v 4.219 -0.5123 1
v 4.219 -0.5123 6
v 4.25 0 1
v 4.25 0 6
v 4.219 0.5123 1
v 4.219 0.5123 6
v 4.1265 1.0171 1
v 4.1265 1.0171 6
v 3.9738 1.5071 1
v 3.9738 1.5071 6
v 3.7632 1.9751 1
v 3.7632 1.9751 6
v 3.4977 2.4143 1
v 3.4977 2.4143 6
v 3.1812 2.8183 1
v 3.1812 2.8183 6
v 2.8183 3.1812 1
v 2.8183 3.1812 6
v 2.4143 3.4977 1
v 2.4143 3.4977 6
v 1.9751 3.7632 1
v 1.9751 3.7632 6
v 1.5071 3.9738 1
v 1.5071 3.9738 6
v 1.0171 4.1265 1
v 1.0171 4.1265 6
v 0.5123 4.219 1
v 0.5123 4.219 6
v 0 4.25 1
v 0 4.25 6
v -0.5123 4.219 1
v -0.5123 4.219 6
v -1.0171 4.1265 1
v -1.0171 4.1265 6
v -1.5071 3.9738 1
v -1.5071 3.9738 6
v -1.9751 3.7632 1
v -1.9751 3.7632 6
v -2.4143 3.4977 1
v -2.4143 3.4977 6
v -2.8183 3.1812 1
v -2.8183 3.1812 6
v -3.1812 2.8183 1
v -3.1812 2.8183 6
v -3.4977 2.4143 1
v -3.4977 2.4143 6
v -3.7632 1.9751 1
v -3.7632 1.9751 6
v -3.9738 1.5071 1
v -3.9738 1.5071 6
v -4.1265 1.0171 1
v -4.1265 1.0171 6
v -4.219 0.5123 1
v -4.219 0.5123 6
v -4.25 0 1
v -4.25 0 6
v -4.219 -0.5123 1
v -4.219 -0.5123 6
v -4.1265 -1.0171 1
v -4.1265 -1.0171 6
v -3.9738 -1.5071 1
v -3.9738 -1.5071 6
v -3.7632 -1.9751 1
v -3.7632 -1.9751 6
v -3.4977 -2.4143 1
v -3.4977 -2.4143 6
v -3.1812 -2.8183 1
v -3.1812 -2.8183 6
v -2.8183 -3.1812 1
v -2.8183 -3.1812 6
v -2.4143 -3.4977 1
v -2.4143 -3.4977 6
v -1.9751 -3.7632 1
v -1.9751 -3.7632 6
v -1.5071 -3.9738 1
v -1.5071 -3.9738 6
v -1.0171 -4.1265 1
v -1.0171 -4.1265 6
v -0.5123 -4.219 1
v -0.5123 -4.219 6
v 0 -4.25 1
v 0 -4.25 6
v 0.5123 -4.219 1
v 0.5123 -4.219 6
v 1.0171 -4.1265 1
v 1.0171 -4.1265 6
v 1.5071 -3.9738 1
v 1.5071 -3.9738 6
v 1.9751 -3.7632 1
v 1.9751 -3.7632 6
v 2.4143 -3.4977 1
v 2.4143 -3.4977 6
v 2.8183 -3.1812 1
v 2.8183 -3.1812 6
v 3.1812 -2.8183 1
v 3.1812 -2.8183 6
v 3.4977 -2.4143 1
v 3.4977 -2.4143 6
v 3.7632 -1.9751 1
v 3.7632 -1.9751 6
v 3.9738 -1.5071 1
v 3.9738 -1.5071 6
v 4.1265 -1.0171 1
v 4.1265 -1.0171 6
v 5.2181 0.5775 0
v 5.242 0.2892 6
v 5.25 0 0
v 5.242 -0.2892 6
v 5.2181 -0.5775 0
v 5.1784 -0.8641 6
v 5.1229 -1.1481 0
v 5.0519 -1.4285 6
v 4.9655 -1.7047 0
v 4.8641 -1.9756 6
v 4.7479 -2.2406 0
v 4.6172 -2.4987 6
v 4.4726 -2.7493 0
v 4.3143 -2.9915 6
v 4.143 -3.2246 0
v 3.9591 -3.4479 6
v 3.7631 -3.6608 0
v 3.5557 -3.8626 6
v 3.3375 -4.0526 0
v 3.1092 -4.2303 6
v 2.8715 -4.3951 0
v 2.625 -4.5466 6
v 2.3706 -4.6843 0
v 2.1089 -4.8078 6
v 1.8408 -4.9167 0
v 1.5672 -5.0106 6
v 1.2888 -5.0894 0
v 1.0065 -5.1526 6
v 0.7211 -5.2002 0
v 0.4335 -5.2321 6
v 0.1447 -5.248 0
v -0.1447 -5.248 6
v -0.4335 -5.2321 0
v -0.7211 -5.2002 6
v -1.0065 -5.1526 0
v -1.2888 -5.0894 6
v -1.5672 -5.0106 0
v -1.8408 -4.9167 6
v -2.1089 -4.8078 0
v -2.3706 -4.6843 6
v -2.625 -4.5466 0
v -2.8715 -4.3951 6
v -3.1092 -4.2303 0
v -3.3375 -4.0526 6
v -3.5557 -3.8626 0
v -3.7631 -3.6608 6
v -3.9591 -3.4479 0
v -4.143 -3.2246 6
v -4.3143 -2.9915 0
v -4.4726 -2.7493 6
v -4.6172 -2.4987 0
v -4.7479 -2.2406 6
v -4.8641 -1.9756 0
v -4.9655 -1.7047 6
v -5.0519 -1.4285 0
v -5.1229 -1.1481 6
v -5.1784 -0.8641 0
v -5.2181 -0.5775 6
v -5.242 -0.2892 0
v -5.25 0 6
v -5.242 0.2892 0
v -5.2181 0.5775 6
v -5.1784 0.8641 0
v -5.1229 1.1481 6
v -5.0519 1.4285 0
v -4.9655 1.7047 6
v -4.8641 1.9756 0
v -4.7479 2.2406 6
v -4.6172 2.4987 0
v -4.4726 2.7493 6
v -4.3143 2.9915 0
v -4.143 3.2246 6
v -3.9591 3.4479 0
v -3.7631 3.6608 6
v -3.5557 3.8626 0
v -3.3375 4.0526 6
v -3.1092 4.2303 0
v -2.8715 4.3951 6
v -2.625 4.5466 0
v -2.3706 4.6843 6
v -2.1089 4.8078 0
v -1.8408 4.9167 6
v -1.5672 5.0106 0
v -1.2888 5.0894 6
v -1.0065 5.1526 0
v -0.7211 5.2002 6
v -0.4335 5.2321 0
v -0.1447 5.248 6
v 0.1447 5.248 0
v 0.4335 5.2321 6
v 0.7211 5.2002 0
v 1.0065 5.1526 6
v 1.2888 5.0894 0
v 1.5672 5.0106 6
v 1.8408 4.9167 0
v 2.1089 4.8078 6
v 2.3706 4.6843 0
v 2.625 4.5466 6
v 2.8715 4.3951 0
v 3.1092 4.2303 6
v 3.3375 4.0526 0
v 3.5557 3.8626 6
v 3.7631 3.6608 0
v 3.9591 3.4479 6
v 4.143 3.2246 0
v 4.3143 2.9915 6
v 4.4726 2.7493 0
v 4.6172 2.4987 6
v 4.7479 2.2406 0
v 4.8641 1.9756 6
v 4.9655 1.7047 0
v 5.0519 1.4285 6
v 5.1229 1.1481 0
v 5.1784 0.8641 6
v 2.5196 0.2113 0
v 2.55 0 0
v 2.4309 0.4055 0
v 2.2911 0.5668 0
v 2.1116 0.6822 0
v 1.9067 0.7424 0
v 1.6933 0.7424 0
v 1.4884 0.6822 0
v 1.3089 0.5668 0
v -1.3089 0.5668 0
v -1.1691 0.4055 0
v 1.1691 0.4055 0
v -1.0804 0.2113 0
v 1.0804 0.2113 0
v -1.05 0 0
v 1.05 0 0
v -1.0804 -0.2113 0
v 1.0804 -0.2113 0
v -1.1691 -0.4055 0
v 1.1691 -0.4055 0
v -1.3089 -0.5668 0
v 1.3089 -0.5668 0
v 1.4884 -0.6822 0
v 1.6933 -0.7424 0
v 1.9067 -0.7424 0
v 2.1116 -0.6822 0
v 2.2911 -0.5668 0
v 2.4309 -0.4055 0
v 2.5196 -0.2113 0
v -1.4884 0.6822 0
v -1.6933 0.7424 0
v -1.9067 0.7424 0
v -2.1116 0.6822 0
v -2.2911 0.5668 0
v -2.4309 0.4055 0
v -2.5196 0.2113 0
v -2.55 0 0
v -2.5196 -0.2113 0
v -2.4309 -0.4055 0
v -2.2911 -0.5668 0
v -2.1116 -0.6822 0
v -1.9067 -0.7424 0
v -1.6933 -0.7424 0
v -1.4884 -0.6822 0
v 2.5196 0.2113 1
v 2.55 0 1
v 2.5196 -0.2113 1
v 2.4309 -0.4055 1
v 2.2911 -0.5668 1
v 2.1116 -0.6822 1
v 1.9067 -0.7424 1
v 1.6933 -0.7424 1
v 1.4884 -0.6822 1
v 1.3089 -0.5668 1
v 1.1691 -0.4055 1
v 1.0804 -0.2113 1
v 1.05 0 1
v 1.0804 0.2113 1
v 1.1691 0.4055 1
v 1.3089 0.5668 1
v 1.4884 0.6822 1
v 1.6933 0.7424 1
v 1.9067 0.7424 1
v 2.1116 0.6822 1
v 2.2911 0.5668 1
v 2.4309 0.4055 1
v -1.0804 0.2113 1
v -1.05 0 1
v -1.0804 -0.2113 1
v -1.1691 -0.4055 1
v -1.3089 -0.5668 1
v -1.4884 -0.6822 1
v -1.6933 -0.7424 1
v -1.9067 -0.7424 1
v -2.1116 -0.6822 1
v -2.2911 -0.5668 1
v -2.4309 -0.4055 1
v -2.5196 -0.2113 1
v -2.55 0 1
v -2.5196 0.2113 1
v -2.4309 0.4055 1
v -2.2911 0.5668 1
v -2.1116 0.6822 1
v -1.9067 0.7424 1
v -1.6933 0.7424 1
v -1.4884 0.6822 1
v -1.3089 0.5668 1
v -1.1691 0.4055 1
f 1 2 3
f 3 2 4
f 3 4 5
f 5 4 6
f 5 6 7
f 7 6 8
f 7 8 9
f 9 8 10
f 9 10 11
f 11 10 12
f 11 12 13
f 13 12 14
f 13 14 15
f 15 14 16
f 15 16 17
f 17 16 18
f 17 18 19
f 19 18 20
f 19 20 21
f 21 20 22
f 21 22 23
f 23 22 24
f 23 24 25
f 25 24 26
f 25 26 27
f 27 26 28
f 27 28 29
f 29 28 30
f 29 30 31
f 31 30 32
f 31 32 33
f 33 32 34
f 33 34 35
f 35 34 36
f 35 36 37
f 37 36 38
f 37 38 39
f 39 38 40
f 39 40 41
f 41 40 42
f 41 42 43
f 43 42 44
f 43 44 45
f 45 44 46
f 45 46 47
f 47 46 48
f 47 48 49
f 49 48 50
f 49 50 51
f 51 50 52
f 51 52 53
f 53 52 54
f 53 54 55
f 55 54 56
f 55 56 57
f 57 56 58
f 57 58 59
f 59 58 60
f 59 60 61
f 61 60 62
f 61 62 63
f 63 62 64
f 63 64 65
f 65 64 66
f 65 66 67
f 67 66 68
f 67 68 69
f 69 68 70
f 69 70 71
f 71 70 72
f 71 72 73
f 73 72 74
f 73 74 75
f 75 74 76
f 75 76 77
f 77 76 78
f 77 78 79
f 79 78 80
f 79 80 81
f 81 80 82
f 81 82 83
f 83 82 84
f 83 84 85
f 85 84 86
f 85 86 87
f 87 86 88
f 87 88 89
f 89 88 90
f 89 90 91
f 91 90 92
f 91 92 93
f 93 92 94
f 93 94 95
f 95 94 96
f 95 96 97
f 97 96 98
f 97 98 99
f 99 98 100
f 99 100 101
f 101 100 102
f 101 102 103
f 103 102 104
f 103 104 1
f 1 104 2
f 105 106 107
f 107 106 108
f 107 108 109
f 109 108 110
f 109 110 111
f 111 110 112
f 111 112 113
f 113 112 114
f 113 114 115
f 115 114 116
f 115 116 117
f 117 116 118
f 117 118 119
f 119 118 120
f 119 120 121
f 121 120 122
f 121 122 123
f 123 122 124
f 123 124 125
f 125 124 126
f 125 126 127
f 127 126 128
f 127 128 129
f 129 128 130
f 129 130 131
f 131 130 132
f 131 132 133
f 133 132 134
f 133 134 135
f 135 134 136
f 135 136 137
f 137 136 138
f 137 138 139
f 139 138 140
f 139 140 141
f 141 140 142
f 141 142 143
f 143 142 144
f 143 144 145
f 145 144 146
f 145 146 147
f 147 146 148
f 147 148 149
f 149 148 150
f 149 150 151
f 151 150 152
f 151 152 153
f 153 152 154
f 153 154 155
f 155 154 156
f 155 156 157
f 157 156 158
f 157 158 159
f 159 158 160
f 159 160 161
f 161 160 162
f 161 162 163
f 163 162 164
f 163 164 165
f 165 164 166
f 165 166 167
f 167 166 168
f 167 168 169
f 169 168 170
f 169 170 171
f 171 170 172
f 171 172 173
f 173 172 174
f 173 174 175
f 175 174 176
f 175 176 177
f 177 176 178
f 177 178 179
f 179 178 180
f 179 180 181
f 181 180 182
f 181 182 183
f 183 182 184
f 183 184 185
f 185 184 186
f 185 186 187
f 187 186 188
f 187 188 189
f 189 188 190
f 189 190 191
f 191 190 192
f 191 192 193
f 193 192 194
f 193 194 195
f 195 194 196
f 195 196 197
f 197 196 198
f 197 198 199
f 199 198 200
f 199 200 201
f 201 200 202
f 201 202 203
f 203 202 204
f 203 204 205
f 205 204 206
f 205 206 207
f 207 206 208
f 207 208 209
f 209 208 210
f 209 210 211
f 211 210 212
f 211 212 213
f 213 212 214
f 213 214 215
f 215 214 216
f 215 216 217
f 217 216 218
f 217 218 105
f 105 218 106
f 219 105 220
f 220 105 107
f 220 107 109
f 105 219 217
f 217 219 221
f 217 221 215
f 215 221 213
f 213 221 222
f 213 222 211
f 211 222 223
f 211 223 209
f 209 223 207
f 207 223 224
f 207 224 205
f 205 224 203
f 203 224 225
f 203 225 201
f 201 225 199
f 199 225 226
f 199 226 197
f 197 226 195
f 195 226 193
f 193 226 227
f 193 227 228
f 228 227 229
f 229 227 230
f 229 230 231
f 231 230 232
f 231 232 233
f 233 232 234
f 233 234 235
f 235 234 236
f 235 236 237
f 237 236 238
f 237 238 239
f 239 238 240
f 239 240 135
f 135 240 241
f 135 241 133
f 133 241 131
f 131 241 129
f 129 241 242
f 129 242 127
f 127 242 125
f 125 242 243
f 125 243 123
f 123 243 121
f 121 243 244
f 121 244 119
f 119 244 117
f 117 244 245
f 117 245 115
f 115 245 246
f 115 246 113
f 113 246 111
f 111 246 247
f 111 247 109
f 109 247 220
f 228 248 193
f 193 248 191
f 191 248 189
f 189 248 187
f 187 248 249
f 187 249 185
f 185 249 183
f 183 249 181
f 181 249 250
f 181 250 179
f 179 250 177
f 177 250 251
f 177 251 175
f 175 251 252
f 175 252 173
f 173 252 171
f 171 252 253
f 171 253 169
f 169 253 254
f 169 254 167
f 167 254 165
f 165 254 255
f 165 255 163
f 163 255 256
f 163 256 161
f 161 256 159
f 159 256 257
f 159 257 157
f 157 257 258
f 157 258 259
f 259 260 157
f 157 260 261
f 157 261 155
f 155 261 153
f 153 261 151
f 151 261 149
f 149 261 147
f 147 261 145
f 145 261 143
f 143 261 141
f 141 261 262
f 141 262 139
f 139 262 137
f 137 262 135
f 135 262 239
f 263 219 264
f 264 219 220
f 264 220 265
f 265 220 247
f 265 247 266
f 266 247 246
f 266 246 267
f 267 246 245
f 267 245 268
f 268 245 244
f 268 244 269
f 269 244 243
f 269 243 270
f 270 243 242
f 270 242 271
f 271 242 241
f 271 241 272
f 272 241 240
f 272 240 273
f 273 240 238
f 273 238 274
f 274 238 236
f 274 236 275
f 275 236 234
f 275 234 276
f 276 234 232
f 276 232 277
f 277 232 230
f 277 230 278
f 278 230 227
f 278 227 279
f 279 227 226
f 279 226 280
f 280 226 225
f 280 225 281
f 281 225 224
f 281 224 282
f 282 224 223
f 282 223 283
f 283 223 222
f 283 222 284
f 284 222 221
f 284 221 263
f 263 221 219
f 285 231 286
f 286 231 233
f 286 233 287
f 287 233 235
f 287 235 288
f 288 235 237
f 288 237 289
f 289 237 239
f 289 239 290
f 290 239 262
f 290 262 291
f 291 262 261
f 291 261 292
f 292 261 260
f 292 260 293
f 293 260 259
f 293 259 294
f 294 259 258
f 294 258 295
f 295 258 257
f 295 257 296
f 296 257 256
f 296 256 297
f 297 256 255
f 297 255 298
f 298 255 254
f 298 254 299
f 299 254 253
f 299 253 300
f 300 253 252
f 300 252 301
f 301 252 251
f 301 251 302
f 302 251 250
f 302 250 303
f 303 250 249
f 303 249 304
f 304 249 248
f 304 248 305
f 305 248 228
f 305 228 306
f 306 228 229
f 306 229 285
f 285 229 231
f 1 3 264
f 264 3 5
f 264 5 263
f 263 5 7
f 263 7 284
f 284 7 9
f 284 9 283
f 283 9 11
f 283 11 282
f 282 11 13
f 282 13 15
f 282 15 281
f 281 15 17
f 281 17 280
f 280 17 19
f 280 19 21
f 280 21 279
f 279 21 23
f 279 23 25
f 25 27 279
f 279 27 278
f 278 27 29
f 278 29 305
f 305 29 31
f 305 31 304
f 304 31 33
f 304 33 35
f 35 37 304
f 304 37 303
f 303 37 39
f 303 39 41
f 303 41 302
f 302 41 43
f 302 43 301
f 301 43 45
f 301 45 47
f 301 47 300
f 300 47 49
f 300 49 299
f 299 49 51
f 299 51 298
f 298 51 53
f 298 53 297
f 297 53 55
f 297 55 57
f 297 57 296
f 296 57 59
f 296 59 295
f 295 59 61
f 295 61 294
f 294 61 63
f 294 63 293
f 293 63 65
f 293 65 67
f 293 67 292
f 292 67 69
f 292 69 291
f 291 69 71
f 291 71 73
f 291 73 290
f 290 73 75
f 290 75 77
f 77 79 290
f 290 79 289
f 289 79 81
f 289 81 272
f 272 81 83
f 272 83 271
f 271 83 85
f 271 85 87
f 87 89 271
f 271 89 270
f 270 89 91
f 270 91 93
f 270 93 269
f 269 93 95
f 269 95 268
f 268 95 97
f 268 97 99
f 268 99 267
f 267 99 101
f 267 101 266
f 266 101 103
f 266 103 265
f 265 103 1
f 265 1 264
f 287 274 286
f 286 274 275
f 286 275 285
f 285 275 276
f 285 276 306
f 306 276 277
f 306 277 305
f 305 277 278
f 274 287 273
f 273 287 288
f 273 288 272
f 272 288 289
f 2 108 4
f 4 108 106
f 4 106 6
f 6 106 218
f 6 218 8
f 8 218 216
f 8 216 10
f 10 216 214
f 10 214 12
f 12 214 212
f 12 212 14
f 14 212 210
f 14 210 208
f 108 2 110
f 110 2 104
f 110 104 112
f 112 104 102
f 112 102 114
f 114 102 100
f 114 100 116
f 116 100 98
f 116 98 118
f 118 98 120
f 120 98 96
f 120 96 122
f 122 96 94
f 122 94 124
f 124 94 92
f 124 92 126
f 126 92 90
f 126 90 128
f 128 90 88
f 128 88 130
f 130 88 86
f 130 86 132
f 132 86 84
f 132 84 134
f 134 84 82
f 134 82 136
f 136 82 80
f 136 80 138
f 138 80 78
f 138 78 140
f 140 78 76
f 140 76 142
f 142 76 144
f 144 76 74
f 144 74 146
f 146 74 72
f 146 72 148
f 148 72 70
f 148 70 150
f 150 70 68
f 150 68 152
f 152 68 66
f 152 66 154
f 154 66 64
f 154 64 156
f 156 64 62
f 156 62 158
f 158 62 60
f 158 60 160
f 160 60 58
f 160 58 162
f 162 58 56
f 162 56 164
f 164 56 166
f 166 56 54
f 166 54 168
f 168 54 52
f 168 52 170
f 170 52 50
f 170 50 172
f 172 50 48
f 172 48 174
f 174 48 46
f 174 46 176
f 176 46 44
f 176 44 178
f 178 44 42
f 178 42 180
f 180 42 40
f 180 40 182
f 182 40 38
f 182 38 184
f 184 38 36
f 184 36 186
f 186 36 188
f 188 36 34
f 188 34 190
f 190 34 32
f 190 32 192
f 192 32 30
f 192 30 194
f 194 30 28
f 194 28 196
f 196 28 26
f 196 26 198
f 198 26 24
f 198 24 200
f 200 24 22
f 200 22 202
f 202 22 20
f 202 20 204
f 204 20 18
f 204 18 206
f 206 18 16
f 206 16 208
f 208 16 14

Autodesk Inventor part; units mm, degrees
ref_plane "YZ Plane" through (0, 0, 0) normal (1, 0, 0) x (0, 1, 0)
ref_plane "XZ Plane" through (0, 0, 0) normal (0, 1, 0) x (-1, 0, 0)
ref_plane "XY Plane" through (0, 0, 0) normal (0, 0, 1) x (1, 0, 0)
sketch "Эскиз1" plane through (0, 0, 0) normal (0, 0, 1) x (1, 0, 0)
  circle A0 centre (0, 0) radius 4.25
  line L0 (-1.8, 0) -> (1.8, 0) construction
  circle A1 centre (-1.8, 0) radius 0.75
  circle A2 centre (1.8, 0) radius 0.75
  circle A3 centre (0, 0) radius 5.25
  dimension "d0" = 8.5
  dimension "d1" = 3.6
  dimension "d2" = 1.5
  dimension "d3" = 1.5
  dimension "d4" = 1
extrude "Выдавливание1" add sketch "Эскиз1" along normal blind 1 contours A0 | A3
extrude "Выдавливание2" add sketch "Эскиз1" along normal blind 5 from surface at 1 contours A3
properties part number "El_Cap_Support"
